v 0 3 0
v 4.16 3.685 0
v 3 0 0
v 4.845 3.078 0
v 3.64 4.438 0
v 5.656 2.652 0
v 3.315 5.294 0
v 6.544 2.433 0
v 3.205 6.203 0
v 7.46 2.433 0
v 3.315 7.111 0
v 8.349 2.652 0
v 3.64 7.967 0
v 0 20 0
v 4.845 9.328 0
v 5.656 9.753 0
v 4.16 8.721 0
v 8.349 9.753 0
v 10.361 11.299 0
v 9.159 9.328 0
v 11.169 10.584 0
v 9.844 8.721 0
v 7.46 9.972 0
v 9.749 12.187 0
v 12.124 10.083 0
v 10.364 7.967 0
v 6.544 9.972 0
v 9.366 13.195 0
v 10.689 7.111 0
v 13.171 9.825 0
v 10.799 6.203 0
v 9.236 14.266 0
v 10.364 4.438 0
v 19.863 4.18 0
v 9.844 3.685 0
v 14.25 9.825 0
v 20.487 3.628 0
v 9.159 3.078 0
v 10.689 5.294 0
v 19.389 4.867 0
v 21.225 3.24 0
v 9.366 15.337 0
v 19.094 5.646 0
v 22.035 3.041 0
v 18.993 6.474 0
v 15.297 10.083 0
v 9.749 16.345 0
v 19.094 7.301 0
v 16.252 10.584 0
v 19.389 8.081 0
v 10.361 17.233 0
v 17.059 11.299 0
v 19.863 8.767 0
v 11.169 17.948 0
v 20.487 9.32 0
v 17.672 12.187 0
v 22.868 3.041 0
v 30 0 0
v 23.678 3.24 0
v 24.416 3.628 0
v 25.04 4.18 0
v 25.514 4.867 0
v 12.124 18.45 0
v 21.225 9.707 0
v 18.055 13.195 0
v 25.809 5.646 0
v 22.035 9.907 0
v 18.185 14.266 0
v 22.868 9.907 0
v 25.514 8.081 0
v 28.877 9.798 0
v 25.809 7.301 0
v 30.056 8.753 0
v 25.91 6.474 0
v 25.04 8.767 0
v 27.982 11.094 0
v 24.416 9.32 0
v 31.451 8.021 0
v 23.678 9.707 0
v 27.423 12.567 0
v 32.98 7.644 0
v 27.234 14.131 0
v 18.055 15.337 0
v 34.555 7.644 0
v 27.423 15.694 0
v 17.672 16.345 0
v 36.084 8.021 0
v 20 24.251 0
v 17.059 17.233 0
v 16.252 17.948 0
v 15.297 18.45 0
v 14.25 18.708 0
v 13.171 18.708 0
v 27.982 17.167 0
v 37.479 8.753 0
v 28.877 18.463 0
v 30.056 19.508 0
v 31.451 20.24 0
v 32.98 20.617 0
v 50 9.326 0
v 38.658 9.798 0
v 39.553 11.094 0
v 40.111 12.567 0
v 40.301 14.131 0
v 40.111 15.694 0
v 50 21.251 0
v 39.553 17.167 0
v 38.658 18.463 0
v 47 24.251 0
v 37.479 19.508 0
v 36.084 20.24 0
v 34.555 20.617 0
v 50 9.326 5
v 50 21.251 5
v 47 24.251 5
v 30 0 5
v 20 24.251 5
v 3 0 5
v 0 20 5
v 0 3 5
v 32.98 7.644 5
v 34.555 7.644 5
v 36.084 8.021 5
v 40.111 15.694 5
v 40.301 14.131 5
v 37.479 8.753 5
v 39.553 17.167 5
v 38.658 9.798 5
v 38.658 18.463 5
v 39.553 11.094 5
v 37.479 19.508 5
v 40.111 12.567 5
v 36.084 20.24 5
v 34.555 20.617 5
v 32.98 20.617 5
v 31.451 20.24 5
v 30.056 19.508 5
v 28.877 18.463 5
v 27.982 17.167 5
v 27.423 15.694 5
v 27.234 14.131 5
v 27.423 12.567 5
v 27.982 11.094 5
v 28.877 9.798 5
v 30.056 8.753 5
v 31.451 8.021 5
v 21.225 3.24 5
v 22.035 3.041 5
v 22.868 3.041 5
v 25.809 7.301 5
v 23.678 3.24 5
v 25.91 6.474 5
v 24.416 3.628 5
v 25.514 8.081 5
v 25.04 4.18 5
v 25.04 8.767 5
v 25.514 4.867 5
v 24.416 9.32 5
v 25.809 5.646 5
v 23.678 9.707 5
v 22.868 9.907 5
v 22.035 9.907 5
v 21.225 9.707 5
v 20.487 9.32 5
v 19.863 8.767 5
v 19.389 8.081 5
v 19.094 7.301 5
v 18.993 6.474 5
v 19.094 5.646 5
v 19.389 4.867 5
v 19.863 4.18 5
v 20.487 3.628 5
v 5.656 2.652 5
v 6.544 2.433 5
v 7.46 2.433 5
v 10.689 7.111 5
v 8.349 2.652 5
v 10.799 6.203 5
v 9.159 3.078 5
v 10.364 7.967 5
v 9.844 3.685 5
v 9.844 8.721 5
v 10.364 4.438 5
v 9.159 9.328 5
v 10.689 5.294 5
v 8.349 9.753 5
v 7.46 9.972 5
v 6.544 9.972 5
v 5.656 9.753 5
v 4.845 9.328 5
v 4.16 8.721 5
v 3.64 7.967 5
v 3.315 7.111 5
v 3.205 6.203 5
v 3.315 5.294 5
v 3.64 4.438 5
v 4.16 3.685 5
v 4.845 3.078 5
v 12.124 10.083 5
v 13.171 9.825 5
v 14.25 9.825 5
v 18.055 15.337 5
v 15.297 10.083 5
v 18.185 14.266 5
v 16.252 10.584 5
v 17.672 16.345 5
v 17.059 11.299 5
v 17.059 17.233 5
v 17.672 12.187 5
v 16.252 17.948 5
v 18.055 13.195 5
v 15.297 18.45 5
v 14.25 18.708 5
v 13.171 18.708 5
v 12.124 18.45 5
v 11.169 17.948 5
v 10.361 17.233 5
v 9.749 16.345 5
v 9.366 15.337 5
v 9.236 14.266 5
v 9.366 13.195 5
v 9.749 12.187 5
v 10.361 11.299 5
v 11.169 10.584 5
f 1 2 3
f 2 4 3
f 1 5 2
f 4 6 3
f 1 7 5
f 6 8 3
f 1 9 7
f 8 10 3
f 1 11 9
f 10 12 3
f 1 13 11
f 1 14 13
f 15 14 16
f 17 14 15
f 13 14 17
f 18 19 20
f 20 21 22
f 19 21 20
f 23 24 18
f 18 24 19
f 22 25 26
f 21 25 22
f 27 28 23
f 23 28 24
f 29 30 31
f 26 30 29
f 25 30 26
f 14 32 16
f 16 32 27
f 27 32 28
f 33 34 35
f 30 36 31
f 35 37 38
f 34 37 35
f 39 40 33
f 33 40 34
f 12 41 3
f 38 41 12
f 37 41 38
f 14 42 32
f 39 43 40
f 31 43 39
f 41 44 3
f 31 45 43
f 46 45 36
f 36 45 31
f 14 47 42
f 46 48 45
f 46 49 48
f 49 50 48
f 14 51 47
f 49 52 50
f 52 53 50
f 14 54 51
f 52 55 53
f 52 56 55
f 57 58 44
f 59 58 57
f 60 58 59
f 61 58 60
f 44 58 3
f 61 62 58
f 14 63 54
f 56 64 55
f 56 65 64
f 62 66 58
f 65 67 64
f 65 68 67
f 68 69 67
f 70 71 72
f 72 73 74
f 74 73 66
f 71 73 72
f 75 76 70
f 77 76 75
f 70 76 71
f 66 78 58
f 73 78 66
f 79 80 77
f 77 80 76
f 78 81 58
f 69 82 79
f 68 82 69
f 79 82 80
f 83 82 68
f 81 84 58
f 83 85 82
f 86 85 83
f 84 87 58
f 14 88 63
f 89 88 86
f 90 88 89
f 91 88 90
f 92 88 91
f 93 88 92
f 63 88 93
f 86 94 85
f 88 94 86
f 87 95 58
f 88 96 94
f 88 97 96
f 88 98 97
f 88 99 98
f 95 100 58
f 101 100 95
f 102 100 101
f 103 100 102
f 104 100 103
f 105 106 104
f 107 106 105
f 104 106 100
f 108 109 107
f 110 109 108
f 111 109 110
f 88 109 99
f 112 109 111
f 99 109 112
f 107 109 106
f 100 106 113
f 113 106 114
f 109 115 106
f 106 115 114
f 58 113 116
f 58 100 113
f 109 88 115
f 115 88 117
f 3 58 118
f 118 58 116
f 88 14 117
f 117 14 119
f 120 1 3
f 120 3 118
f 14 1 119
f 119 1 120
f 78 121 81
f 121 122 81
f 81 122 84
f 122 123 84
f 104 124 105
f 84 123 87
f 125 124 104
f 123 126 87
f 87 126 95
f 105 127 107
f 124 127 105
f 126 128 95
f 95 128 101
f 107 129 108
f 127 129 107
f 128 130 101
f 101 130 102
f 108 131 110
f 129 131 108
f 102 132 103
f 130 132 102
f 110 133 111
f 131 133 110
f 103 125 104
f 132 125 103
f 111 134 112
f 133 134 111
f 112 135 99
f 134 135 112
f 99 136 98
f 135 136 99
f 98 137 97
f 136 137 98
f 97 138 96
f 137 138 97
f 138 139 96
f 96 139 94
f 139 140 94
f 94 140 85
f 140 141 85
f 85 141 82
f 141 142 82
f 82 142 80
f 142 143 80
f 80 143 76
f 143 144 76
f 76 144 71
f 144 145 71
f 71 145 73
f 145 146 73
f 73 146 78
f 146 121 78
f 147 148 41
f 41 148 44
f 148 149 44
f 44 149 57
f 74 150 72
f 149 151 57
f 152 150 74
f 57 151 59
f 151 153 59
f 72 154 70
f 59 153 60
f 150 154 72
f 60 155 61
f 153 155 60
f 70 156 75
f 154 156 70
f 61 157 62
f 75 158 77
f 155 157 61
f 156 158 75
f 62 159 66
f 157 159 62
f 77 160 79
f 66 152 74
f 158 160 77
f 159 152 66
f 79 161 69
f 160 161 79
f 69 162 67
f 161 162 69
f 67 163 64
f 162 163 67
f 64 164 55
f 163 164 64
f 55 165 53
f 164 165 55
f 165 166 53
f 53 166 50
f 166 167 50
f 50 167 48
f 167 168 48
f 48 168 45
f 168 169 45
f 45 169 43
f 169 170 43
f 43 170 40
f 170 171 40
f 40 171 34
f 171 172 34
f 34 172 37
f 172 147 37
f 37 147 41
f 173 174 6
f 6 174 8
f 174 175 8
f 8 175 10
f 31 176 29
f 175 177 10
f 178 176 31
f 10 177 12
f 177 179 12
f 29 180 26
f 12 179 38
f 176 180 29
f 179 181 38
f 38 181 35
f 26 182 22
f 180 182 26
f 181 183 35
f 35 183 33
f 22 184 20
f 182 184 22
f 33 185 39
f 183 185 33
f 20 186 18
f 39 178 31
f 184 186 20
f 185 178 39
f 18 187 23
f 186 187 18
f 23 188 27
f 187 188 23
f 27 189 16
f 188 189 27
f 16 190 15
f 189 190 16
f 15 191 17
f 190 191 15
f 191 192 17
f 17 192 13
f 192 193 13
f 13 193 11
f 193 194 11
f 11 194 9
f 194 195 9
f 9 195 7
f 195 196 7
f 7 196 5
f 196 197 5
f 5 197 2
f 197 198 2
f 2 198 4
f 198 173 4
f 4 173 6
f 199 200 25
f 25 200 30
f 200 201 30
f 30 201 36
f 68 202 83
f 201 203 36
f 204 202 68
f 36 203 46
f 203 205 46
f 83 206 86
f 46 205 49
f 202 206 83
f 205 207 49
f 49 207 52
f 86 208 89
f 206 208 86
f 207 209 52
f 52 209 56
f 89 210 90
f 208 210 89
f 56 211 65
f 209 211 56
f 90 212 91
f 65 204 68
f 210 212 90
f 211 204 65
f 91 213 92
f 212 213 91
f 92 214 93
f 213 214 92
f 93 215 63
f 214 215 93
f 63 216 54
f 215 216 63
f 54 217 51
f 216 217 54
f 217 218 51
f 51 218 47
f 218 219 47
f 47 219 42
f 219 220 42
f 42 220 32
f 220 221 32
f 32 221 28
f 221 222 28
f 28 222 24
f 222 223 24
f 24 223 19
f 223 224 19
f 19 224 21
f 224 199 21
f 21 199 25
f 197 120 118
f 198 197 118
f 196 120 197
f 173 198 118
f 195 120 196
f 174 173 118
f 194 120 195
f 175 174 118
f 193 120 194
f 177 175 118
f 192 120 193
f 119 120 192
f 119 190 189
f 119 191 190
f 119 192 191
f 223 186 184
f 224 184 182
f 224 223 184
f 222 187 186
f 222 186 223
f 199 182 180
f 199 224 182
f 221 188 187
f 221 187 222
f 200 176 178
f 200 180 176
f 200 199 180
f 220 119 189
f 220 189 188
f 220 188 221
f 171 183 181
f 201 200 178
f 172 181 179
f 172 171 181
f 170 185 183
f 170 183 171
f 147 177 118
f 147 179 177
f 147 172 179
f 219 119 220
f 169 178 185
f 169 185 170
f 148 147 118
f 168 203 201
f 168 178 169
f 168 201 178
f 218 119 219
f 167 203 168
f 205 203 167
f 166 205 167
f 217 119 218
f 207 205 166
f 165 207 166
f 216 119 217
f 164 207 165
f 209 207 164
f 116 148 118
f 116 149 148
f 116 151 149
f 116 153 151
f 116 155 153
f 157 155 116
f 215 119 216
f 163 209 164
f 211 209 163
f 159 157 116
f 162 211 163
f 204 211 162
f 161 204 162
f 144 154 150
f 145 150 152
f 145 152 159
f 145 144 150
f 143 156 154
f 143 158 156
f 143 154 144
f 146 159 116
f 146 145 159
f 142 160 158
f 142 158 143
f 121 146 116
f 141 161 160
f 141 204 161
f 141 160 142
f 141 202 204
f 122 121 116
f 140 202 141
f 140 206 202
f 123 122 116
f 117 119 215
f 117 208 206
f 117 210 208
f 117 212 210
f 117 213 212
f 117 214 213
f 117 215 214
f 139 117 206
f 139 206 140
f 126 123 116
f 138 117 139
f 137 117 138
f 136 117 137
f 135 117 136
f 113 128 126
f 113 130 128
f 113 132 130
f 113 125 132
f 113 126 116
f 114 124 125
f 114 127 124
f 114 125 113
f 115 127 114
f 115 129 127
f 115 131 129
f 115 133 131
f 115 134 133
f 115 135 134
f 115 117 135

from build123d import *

# Parameters (mm, degrees)
PAD_DEPTH       = 5
CHAMFER_SIZE    = 3
CHAMFER001_SIZE = 3
SKETCH001_R     = 4.474248
SKETCH001_R_2   = 6.533879
SKETCH001_R_3   = 3.458444
SKETCH001_R_4   = 3.797006
POCKET_DEPTH    = 5.001


with BuildPart() as part:
    # Sketch → Pad (new body)
    with BuildSketch(Plane.XY):
        Polygon((0, 0), (30, 0), (50, 9.326153), (50, 24.251131), (20, 24.251131), (0, 20), align=None)
    extrude(amount=PAD_DEPTH)

    # Chamfer
    chamfer_edges = [part.edges().sort_by_distance(p)[0] for p in [
        (0, 0, 2.5),
    ]]
    chamfer(chamfer_edges, length=CHAMFER_SIZE)

    # Chamfer001
    chamfer001_edges = [part.edges().sort_by_distance(p)[0] for p in [
        (50, 24.251131, 2.5),
    ]]
    chamfer(chamfer001_edges, length=CHAMFER001_SIZE)

    # Sketch001 (on Face10 of Chamfer001) → Pocket (cut, through all)
    with BuildSketch(Plane.XY.offset(5)):
        with Locations((13.710362, 14.266204)):
            Circle(SKETCH001_R)
        with Locations((33.767467, 14.130686)):
            Circle(SKETCH001_R_2)
        with Locations((22.451464, 6.473749)):
            Circle(SKETCH001_R_3)
        with Locations((7.002075, 6.202708)):
            Circle(SKETCH001_R_4)
    extrude(amount=-POCKET_DEPTH, mode=Mode.SUBTRACT)


solid = part.part
